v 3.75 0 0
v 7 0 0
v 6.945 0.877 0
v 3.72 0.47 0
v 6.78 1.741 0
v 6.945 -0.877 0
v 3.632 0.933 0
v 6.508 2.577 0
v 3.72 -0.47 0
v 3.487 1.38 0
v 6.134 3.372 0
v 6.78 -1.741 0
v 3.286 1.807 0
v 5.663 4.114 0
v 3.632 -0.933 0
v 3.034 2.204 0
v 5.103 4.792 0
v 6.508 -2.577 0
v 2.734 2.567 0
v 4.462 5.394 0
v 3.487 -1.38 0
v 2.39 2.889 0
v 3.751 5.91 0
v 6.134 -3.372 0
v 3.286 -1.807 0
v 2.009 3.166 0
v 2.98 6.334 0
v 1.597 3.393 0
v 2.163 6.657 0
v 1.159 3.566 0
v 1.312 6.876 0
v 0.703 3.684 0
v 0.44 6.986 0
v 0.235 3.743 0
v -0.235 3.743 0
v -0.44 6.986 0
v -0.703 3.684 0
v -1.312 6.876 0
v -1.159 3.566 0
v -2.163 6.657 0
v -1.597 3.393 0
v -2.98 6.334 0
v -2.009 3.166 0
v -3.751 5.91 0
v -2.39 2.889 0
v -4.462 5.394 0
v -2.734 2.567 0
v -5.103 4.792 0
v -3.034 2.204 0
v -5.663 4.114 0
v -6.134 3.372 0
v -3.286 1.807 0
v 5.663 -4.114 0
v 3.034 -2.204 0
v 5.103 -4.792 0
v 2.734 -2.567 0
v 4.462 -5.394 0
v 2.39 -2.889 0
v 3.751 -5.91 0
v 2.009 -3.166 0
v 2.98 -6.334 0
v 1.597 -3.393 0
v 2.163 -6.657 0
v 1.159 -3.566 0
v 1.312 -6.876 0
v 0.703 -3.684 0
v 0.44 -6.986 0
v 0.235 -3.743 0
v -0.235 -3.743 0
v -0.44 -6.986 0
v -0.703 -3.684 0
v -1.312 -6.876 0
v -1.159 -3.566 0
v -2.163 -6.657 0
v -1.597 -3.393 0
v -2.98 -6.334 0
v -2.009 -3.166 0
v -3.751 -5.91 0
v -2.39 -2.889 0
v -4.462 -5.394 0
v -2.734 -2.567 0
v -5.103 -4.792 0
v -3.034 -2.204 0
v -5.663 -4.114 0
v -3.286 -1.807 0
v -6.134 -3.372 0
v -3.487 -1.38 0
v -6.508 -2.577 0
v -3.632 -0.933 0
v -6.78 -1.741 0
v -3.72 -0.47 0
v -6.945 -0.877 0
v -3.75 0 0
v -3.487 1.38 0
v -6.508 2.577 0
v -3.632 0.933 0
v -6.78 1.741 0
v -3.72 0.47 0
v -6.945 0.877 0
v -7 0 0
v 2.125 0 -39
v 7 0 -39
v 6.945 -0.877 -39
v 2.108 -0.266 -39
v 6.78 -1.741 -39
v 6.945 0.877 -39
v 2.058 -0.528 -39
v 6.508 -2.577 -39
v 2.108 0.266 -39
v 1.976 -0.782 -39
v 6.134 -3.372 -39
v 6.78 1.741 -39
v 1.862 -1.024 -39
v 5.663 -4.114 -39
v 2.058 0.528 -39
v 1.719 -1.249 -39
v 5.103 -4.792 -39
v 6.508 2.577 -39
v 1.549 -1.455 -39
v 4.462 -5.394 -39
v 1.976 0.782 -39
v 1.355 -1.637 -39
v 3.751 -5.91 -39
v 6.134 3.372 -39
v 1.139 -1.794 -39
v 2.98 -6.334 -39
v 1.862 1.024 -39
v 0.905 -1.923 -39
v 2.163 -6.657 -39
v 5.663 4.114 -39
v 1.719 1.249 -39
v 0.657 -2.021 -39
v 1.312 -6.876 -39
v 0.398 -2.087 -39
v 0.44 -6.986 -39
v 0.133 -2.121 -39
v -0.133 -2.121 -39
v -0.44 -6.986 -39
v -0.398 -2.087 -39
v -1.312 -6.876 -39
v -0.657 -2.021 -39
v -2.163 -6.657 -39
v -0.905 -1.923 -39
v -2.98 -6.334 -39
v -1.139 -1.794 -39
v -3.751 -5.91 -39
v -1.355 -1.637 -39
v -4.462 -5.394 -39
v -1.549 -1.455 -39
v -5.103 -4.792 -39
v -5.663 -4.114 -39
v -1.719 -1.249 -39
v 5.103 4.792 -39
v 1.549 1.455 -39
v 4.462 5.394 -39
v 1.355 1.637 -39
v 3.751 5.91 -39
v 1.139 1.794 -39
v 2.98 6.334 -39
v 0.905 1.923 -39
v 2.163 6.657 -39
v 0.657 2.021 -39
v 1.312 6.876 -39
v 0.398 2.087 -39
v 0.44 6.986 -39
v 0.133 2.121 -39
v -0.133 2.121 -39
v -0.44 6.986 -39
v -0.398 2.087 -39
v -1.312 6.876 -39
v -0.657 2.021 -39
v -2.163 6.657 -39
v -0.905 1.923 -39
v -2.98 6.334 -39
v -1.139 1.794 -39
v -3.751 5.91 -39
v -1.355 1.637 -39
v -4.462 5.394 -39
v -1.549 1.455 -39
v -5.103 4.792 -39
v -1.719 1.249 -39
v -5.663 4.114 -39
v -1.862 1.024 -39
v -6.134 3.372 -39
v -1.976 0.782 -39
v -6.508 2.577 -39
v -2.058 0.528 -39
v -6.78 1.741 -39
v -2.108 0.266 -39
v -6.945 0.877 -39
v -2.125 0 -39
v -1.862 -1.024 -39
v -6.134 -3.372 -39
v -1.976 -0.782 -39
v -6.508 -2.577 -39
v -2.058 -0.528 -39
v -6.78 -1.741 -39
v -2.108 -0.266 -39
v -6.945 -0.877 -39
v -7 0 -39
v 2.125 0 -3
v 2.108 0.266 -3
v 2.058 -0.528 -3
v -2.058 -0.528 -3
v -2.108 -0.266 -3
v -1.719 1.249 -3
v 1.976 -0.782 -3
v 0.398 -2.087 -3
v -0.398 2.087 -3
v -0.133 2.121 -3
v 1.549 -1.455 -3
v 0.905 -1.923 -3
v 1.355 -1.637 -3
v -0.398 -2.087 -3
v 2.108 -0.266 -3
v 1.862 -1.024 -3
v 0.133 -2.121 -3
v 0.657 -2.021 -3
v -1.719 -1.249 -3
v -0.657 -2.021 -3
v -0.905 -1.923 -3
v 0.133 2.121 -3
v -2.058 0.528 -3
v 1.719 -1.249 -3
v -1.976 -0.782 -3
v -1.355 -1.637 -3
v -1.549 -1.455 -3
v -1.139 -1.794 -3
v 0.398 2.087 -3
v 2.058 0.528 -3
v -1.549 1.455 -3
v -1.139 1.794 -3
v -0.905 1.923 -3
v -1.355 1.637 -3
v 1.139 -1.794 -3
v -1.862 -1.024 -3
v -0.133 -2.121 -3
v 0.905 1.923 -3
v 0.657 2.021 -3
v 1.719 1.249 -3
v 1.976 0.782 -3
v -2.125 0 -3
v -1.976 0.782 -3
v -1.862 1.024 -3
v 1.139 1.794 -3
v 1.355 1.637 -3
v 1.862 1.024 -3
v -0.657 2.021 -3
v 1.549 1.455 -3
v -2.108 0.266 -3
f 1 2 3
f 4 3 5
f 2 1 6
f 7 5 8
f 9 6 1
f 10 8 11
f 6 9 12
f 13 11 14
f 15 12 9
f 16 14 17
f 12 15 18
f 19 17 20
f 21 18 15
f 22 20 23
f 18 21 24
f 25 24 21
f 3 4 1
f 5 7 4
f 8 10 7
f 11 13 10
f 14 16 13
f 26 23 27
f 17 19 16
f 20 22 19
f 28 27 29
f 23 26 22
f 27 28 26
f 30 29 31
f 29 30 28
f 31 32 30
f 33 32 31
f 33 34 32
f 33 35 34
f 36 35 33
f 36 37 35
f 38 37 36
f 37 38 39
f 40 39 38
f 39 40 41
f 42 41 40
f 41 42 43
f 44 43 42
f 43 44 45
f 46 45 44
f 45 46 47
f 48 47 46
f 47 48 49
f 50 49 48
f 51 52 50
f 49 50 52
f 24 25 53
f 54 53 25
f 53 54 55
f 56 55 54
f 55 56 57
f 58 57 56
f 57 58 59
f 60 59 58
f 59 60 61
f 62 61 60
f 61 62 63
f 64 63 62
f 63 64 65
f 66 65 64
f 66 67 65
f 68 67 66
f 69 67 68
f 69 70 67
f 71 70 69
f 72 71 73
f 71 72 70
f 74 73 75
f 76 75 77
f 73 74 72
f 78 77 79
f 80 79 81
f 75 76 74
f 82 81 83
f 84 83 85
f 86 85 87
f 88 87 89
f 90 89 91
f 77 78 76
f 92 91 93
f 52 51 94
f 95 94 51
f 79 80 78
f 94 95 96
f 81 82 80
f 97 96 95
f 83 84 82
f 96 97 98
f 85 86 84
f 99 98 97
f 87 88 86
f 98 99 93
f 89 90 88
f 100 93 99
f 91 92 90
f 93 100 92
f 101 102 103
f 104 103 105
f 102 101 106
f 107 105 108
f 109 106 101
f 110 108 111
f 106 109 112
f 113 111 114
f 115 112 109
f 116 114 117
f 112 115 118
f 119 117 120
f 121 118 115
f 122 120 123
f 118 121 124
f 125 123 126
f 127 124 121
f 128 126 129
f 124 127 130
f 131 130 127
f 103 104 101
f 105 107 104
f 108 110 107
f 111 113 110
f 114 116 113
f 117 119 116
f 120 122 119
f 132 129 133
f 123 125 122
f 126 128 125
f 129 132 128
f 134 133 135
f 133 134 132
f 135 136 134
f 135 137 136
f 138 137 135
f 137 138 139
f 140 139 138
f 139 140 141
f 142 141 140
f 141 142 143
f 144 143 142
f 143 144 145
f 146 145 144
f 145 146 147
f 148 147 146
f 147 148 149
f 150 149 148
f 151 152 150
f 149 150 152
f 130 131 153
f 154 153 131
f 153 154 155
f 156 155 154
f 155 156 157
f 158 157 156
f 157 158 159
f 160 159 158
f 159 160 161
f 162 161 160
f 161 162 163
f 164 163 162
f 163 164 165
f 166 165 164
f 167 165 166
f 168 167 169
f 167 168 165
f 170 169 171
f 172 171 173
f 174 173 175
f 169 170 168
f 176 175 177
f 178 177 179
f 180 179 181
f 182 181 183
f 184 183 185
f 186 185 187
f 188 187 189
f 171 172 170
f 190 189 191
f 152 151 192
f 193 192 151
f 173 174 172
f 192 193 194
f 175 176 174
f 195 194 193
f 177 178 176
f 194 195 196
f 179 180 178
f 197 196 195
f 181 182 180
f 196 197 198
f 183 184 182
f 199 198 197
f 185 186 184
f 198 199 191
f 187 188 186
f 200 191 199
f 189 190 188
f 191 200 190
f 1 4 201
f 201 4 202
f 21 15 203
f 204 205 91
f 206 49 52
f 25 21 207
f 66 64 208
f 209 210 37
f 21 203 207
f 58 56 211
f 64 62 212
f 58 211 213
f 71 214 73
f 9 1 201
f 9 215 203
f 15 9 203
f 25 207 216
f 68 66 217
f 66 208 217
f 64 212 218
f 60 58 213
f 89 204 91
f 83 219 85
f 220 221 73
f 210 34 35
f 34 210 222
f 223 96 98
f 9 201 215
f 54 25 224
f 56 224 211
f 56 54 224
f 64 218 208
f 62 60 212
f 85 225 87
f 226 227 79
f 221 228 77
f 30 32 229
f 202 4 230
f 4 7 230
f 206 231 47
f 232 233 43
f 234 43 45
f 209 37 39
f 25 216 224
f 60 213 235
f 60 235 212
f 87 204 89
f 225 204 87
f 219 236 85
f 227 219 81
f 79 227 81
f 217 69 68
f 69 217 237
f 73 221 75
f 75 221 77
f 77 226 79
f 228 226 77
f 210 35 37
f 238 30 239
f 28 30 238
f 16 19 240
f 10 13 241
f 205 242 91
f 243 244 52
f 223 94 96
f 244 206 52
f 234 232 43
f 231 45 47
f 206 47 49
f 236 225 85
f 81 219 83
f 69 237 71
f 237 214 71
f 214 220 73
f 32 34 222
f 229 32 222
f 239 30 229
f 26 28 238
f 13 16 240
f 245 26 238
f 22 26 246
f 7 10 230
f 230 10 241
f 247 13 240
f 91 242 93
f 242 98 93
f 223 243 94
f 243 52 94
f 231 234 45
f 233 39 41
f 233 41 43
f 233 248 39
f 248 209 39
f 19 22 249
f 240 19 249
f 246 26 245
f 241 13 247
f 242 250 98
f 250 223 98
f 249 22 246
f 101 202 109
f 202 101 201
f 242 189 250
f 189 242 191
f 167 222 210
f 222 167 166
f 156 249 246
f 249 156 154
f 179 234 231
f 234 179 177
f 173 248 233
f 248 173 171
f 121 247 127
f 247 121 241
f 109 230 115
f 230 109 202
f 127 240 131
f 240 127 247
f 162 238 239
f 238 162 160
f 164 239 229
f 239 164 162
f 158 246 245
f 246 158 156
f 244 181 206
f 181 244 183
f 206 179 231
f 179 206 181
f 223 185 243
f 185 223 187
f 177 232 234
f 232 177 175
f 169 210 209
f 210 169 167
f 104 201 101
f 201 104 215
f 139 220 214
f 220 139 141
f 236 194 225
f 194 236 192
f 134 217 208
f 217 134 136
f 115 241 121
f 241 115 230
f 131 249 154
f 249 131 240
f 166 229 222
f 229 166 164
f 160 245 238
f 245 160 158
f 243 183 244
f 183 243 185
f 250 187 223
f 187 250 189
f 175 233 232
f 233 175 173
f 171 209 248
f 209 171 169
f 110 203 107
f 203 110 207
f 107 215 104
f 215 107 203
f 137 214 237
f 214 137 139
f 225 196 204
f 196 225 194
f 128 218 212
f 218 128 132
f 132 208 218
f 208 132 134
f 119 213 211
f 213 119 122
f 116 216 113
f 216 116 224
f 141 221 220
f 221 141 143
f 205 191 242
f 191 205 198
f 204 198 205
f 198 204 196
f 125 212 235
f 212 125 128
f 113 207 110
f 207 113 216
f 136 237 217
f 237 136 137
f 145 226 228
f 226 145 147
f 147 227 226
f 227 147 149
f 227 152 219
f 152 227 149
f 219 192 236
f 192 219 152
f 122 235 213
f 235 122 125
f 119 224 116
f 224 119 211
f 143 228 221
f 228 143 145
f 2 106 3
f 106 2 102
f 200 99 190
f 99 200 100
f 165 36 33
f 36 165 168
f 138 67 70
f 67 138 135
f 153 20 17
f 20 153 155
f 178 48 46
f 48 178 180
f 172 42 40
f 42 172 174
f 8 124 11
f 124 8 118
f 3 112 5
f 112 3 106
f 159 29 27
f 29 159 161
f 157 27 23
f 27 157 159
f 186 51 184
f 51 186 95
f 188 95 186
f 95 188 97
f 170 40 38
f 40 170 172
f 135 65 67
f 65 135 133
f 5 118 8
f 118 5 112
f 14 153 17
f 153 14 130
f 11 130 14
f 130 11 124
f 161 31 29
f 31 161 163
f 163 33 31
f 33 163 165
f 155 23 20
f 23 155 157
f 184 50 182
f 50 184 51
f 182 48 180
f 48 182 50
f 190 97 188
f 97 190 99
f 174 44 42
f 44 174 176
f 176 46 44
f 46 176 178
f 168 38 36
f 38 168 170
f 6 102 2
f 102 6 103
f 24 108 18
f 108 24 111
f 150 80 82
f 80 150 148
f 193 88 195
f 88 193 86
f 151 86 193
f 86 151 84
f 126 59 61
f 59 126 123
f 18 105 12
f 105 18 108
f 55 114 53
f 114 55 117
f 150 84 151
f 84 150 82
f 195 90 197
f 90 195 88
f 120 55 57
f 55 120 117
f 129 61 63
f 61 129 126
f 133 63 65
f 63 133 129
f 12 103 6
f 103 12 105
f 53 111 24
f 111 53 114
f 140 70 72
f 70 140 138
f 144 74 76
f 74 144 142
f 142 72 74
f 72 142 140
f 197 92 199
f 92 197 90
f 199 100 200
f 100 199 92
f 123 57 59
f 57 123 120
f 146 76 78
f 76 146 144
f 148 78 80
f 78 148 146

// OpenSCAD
$fn = 50;


difference() {
	union() {
		translate(v = [0, 0, -39.0000000000]) {
			cylinder(h = 39, r = 7.0000000000);
		}
		cylinder(h = 0, r = 17.0000000000);
	}
	union() {
		translate(v = [0, 0, 0]) {
			rotate(a = [0, 0, 0]) {
				difference() {
					union() {
						#translate(v = [0, 0, -39.0000000000]) {
							cylinder(h = 39, r = 2.0000000000);
						}
						#translate(v = [0, 0, -3]) {
							cylinder(h = 3, r1 = 2.1250000000, r2 = 3.7500000000);
						}
						#translate(v = [0, 0, -39.0000000000]) {
							cylinder(h = 39, r = 2.1250000000);
						}
						#translate(v = [0, 0, -39.0000000000]) {
							cylinder(h = 39, r = 2.0000000000);
						}
					}
					union();
				}
			}
		}
	}
}
